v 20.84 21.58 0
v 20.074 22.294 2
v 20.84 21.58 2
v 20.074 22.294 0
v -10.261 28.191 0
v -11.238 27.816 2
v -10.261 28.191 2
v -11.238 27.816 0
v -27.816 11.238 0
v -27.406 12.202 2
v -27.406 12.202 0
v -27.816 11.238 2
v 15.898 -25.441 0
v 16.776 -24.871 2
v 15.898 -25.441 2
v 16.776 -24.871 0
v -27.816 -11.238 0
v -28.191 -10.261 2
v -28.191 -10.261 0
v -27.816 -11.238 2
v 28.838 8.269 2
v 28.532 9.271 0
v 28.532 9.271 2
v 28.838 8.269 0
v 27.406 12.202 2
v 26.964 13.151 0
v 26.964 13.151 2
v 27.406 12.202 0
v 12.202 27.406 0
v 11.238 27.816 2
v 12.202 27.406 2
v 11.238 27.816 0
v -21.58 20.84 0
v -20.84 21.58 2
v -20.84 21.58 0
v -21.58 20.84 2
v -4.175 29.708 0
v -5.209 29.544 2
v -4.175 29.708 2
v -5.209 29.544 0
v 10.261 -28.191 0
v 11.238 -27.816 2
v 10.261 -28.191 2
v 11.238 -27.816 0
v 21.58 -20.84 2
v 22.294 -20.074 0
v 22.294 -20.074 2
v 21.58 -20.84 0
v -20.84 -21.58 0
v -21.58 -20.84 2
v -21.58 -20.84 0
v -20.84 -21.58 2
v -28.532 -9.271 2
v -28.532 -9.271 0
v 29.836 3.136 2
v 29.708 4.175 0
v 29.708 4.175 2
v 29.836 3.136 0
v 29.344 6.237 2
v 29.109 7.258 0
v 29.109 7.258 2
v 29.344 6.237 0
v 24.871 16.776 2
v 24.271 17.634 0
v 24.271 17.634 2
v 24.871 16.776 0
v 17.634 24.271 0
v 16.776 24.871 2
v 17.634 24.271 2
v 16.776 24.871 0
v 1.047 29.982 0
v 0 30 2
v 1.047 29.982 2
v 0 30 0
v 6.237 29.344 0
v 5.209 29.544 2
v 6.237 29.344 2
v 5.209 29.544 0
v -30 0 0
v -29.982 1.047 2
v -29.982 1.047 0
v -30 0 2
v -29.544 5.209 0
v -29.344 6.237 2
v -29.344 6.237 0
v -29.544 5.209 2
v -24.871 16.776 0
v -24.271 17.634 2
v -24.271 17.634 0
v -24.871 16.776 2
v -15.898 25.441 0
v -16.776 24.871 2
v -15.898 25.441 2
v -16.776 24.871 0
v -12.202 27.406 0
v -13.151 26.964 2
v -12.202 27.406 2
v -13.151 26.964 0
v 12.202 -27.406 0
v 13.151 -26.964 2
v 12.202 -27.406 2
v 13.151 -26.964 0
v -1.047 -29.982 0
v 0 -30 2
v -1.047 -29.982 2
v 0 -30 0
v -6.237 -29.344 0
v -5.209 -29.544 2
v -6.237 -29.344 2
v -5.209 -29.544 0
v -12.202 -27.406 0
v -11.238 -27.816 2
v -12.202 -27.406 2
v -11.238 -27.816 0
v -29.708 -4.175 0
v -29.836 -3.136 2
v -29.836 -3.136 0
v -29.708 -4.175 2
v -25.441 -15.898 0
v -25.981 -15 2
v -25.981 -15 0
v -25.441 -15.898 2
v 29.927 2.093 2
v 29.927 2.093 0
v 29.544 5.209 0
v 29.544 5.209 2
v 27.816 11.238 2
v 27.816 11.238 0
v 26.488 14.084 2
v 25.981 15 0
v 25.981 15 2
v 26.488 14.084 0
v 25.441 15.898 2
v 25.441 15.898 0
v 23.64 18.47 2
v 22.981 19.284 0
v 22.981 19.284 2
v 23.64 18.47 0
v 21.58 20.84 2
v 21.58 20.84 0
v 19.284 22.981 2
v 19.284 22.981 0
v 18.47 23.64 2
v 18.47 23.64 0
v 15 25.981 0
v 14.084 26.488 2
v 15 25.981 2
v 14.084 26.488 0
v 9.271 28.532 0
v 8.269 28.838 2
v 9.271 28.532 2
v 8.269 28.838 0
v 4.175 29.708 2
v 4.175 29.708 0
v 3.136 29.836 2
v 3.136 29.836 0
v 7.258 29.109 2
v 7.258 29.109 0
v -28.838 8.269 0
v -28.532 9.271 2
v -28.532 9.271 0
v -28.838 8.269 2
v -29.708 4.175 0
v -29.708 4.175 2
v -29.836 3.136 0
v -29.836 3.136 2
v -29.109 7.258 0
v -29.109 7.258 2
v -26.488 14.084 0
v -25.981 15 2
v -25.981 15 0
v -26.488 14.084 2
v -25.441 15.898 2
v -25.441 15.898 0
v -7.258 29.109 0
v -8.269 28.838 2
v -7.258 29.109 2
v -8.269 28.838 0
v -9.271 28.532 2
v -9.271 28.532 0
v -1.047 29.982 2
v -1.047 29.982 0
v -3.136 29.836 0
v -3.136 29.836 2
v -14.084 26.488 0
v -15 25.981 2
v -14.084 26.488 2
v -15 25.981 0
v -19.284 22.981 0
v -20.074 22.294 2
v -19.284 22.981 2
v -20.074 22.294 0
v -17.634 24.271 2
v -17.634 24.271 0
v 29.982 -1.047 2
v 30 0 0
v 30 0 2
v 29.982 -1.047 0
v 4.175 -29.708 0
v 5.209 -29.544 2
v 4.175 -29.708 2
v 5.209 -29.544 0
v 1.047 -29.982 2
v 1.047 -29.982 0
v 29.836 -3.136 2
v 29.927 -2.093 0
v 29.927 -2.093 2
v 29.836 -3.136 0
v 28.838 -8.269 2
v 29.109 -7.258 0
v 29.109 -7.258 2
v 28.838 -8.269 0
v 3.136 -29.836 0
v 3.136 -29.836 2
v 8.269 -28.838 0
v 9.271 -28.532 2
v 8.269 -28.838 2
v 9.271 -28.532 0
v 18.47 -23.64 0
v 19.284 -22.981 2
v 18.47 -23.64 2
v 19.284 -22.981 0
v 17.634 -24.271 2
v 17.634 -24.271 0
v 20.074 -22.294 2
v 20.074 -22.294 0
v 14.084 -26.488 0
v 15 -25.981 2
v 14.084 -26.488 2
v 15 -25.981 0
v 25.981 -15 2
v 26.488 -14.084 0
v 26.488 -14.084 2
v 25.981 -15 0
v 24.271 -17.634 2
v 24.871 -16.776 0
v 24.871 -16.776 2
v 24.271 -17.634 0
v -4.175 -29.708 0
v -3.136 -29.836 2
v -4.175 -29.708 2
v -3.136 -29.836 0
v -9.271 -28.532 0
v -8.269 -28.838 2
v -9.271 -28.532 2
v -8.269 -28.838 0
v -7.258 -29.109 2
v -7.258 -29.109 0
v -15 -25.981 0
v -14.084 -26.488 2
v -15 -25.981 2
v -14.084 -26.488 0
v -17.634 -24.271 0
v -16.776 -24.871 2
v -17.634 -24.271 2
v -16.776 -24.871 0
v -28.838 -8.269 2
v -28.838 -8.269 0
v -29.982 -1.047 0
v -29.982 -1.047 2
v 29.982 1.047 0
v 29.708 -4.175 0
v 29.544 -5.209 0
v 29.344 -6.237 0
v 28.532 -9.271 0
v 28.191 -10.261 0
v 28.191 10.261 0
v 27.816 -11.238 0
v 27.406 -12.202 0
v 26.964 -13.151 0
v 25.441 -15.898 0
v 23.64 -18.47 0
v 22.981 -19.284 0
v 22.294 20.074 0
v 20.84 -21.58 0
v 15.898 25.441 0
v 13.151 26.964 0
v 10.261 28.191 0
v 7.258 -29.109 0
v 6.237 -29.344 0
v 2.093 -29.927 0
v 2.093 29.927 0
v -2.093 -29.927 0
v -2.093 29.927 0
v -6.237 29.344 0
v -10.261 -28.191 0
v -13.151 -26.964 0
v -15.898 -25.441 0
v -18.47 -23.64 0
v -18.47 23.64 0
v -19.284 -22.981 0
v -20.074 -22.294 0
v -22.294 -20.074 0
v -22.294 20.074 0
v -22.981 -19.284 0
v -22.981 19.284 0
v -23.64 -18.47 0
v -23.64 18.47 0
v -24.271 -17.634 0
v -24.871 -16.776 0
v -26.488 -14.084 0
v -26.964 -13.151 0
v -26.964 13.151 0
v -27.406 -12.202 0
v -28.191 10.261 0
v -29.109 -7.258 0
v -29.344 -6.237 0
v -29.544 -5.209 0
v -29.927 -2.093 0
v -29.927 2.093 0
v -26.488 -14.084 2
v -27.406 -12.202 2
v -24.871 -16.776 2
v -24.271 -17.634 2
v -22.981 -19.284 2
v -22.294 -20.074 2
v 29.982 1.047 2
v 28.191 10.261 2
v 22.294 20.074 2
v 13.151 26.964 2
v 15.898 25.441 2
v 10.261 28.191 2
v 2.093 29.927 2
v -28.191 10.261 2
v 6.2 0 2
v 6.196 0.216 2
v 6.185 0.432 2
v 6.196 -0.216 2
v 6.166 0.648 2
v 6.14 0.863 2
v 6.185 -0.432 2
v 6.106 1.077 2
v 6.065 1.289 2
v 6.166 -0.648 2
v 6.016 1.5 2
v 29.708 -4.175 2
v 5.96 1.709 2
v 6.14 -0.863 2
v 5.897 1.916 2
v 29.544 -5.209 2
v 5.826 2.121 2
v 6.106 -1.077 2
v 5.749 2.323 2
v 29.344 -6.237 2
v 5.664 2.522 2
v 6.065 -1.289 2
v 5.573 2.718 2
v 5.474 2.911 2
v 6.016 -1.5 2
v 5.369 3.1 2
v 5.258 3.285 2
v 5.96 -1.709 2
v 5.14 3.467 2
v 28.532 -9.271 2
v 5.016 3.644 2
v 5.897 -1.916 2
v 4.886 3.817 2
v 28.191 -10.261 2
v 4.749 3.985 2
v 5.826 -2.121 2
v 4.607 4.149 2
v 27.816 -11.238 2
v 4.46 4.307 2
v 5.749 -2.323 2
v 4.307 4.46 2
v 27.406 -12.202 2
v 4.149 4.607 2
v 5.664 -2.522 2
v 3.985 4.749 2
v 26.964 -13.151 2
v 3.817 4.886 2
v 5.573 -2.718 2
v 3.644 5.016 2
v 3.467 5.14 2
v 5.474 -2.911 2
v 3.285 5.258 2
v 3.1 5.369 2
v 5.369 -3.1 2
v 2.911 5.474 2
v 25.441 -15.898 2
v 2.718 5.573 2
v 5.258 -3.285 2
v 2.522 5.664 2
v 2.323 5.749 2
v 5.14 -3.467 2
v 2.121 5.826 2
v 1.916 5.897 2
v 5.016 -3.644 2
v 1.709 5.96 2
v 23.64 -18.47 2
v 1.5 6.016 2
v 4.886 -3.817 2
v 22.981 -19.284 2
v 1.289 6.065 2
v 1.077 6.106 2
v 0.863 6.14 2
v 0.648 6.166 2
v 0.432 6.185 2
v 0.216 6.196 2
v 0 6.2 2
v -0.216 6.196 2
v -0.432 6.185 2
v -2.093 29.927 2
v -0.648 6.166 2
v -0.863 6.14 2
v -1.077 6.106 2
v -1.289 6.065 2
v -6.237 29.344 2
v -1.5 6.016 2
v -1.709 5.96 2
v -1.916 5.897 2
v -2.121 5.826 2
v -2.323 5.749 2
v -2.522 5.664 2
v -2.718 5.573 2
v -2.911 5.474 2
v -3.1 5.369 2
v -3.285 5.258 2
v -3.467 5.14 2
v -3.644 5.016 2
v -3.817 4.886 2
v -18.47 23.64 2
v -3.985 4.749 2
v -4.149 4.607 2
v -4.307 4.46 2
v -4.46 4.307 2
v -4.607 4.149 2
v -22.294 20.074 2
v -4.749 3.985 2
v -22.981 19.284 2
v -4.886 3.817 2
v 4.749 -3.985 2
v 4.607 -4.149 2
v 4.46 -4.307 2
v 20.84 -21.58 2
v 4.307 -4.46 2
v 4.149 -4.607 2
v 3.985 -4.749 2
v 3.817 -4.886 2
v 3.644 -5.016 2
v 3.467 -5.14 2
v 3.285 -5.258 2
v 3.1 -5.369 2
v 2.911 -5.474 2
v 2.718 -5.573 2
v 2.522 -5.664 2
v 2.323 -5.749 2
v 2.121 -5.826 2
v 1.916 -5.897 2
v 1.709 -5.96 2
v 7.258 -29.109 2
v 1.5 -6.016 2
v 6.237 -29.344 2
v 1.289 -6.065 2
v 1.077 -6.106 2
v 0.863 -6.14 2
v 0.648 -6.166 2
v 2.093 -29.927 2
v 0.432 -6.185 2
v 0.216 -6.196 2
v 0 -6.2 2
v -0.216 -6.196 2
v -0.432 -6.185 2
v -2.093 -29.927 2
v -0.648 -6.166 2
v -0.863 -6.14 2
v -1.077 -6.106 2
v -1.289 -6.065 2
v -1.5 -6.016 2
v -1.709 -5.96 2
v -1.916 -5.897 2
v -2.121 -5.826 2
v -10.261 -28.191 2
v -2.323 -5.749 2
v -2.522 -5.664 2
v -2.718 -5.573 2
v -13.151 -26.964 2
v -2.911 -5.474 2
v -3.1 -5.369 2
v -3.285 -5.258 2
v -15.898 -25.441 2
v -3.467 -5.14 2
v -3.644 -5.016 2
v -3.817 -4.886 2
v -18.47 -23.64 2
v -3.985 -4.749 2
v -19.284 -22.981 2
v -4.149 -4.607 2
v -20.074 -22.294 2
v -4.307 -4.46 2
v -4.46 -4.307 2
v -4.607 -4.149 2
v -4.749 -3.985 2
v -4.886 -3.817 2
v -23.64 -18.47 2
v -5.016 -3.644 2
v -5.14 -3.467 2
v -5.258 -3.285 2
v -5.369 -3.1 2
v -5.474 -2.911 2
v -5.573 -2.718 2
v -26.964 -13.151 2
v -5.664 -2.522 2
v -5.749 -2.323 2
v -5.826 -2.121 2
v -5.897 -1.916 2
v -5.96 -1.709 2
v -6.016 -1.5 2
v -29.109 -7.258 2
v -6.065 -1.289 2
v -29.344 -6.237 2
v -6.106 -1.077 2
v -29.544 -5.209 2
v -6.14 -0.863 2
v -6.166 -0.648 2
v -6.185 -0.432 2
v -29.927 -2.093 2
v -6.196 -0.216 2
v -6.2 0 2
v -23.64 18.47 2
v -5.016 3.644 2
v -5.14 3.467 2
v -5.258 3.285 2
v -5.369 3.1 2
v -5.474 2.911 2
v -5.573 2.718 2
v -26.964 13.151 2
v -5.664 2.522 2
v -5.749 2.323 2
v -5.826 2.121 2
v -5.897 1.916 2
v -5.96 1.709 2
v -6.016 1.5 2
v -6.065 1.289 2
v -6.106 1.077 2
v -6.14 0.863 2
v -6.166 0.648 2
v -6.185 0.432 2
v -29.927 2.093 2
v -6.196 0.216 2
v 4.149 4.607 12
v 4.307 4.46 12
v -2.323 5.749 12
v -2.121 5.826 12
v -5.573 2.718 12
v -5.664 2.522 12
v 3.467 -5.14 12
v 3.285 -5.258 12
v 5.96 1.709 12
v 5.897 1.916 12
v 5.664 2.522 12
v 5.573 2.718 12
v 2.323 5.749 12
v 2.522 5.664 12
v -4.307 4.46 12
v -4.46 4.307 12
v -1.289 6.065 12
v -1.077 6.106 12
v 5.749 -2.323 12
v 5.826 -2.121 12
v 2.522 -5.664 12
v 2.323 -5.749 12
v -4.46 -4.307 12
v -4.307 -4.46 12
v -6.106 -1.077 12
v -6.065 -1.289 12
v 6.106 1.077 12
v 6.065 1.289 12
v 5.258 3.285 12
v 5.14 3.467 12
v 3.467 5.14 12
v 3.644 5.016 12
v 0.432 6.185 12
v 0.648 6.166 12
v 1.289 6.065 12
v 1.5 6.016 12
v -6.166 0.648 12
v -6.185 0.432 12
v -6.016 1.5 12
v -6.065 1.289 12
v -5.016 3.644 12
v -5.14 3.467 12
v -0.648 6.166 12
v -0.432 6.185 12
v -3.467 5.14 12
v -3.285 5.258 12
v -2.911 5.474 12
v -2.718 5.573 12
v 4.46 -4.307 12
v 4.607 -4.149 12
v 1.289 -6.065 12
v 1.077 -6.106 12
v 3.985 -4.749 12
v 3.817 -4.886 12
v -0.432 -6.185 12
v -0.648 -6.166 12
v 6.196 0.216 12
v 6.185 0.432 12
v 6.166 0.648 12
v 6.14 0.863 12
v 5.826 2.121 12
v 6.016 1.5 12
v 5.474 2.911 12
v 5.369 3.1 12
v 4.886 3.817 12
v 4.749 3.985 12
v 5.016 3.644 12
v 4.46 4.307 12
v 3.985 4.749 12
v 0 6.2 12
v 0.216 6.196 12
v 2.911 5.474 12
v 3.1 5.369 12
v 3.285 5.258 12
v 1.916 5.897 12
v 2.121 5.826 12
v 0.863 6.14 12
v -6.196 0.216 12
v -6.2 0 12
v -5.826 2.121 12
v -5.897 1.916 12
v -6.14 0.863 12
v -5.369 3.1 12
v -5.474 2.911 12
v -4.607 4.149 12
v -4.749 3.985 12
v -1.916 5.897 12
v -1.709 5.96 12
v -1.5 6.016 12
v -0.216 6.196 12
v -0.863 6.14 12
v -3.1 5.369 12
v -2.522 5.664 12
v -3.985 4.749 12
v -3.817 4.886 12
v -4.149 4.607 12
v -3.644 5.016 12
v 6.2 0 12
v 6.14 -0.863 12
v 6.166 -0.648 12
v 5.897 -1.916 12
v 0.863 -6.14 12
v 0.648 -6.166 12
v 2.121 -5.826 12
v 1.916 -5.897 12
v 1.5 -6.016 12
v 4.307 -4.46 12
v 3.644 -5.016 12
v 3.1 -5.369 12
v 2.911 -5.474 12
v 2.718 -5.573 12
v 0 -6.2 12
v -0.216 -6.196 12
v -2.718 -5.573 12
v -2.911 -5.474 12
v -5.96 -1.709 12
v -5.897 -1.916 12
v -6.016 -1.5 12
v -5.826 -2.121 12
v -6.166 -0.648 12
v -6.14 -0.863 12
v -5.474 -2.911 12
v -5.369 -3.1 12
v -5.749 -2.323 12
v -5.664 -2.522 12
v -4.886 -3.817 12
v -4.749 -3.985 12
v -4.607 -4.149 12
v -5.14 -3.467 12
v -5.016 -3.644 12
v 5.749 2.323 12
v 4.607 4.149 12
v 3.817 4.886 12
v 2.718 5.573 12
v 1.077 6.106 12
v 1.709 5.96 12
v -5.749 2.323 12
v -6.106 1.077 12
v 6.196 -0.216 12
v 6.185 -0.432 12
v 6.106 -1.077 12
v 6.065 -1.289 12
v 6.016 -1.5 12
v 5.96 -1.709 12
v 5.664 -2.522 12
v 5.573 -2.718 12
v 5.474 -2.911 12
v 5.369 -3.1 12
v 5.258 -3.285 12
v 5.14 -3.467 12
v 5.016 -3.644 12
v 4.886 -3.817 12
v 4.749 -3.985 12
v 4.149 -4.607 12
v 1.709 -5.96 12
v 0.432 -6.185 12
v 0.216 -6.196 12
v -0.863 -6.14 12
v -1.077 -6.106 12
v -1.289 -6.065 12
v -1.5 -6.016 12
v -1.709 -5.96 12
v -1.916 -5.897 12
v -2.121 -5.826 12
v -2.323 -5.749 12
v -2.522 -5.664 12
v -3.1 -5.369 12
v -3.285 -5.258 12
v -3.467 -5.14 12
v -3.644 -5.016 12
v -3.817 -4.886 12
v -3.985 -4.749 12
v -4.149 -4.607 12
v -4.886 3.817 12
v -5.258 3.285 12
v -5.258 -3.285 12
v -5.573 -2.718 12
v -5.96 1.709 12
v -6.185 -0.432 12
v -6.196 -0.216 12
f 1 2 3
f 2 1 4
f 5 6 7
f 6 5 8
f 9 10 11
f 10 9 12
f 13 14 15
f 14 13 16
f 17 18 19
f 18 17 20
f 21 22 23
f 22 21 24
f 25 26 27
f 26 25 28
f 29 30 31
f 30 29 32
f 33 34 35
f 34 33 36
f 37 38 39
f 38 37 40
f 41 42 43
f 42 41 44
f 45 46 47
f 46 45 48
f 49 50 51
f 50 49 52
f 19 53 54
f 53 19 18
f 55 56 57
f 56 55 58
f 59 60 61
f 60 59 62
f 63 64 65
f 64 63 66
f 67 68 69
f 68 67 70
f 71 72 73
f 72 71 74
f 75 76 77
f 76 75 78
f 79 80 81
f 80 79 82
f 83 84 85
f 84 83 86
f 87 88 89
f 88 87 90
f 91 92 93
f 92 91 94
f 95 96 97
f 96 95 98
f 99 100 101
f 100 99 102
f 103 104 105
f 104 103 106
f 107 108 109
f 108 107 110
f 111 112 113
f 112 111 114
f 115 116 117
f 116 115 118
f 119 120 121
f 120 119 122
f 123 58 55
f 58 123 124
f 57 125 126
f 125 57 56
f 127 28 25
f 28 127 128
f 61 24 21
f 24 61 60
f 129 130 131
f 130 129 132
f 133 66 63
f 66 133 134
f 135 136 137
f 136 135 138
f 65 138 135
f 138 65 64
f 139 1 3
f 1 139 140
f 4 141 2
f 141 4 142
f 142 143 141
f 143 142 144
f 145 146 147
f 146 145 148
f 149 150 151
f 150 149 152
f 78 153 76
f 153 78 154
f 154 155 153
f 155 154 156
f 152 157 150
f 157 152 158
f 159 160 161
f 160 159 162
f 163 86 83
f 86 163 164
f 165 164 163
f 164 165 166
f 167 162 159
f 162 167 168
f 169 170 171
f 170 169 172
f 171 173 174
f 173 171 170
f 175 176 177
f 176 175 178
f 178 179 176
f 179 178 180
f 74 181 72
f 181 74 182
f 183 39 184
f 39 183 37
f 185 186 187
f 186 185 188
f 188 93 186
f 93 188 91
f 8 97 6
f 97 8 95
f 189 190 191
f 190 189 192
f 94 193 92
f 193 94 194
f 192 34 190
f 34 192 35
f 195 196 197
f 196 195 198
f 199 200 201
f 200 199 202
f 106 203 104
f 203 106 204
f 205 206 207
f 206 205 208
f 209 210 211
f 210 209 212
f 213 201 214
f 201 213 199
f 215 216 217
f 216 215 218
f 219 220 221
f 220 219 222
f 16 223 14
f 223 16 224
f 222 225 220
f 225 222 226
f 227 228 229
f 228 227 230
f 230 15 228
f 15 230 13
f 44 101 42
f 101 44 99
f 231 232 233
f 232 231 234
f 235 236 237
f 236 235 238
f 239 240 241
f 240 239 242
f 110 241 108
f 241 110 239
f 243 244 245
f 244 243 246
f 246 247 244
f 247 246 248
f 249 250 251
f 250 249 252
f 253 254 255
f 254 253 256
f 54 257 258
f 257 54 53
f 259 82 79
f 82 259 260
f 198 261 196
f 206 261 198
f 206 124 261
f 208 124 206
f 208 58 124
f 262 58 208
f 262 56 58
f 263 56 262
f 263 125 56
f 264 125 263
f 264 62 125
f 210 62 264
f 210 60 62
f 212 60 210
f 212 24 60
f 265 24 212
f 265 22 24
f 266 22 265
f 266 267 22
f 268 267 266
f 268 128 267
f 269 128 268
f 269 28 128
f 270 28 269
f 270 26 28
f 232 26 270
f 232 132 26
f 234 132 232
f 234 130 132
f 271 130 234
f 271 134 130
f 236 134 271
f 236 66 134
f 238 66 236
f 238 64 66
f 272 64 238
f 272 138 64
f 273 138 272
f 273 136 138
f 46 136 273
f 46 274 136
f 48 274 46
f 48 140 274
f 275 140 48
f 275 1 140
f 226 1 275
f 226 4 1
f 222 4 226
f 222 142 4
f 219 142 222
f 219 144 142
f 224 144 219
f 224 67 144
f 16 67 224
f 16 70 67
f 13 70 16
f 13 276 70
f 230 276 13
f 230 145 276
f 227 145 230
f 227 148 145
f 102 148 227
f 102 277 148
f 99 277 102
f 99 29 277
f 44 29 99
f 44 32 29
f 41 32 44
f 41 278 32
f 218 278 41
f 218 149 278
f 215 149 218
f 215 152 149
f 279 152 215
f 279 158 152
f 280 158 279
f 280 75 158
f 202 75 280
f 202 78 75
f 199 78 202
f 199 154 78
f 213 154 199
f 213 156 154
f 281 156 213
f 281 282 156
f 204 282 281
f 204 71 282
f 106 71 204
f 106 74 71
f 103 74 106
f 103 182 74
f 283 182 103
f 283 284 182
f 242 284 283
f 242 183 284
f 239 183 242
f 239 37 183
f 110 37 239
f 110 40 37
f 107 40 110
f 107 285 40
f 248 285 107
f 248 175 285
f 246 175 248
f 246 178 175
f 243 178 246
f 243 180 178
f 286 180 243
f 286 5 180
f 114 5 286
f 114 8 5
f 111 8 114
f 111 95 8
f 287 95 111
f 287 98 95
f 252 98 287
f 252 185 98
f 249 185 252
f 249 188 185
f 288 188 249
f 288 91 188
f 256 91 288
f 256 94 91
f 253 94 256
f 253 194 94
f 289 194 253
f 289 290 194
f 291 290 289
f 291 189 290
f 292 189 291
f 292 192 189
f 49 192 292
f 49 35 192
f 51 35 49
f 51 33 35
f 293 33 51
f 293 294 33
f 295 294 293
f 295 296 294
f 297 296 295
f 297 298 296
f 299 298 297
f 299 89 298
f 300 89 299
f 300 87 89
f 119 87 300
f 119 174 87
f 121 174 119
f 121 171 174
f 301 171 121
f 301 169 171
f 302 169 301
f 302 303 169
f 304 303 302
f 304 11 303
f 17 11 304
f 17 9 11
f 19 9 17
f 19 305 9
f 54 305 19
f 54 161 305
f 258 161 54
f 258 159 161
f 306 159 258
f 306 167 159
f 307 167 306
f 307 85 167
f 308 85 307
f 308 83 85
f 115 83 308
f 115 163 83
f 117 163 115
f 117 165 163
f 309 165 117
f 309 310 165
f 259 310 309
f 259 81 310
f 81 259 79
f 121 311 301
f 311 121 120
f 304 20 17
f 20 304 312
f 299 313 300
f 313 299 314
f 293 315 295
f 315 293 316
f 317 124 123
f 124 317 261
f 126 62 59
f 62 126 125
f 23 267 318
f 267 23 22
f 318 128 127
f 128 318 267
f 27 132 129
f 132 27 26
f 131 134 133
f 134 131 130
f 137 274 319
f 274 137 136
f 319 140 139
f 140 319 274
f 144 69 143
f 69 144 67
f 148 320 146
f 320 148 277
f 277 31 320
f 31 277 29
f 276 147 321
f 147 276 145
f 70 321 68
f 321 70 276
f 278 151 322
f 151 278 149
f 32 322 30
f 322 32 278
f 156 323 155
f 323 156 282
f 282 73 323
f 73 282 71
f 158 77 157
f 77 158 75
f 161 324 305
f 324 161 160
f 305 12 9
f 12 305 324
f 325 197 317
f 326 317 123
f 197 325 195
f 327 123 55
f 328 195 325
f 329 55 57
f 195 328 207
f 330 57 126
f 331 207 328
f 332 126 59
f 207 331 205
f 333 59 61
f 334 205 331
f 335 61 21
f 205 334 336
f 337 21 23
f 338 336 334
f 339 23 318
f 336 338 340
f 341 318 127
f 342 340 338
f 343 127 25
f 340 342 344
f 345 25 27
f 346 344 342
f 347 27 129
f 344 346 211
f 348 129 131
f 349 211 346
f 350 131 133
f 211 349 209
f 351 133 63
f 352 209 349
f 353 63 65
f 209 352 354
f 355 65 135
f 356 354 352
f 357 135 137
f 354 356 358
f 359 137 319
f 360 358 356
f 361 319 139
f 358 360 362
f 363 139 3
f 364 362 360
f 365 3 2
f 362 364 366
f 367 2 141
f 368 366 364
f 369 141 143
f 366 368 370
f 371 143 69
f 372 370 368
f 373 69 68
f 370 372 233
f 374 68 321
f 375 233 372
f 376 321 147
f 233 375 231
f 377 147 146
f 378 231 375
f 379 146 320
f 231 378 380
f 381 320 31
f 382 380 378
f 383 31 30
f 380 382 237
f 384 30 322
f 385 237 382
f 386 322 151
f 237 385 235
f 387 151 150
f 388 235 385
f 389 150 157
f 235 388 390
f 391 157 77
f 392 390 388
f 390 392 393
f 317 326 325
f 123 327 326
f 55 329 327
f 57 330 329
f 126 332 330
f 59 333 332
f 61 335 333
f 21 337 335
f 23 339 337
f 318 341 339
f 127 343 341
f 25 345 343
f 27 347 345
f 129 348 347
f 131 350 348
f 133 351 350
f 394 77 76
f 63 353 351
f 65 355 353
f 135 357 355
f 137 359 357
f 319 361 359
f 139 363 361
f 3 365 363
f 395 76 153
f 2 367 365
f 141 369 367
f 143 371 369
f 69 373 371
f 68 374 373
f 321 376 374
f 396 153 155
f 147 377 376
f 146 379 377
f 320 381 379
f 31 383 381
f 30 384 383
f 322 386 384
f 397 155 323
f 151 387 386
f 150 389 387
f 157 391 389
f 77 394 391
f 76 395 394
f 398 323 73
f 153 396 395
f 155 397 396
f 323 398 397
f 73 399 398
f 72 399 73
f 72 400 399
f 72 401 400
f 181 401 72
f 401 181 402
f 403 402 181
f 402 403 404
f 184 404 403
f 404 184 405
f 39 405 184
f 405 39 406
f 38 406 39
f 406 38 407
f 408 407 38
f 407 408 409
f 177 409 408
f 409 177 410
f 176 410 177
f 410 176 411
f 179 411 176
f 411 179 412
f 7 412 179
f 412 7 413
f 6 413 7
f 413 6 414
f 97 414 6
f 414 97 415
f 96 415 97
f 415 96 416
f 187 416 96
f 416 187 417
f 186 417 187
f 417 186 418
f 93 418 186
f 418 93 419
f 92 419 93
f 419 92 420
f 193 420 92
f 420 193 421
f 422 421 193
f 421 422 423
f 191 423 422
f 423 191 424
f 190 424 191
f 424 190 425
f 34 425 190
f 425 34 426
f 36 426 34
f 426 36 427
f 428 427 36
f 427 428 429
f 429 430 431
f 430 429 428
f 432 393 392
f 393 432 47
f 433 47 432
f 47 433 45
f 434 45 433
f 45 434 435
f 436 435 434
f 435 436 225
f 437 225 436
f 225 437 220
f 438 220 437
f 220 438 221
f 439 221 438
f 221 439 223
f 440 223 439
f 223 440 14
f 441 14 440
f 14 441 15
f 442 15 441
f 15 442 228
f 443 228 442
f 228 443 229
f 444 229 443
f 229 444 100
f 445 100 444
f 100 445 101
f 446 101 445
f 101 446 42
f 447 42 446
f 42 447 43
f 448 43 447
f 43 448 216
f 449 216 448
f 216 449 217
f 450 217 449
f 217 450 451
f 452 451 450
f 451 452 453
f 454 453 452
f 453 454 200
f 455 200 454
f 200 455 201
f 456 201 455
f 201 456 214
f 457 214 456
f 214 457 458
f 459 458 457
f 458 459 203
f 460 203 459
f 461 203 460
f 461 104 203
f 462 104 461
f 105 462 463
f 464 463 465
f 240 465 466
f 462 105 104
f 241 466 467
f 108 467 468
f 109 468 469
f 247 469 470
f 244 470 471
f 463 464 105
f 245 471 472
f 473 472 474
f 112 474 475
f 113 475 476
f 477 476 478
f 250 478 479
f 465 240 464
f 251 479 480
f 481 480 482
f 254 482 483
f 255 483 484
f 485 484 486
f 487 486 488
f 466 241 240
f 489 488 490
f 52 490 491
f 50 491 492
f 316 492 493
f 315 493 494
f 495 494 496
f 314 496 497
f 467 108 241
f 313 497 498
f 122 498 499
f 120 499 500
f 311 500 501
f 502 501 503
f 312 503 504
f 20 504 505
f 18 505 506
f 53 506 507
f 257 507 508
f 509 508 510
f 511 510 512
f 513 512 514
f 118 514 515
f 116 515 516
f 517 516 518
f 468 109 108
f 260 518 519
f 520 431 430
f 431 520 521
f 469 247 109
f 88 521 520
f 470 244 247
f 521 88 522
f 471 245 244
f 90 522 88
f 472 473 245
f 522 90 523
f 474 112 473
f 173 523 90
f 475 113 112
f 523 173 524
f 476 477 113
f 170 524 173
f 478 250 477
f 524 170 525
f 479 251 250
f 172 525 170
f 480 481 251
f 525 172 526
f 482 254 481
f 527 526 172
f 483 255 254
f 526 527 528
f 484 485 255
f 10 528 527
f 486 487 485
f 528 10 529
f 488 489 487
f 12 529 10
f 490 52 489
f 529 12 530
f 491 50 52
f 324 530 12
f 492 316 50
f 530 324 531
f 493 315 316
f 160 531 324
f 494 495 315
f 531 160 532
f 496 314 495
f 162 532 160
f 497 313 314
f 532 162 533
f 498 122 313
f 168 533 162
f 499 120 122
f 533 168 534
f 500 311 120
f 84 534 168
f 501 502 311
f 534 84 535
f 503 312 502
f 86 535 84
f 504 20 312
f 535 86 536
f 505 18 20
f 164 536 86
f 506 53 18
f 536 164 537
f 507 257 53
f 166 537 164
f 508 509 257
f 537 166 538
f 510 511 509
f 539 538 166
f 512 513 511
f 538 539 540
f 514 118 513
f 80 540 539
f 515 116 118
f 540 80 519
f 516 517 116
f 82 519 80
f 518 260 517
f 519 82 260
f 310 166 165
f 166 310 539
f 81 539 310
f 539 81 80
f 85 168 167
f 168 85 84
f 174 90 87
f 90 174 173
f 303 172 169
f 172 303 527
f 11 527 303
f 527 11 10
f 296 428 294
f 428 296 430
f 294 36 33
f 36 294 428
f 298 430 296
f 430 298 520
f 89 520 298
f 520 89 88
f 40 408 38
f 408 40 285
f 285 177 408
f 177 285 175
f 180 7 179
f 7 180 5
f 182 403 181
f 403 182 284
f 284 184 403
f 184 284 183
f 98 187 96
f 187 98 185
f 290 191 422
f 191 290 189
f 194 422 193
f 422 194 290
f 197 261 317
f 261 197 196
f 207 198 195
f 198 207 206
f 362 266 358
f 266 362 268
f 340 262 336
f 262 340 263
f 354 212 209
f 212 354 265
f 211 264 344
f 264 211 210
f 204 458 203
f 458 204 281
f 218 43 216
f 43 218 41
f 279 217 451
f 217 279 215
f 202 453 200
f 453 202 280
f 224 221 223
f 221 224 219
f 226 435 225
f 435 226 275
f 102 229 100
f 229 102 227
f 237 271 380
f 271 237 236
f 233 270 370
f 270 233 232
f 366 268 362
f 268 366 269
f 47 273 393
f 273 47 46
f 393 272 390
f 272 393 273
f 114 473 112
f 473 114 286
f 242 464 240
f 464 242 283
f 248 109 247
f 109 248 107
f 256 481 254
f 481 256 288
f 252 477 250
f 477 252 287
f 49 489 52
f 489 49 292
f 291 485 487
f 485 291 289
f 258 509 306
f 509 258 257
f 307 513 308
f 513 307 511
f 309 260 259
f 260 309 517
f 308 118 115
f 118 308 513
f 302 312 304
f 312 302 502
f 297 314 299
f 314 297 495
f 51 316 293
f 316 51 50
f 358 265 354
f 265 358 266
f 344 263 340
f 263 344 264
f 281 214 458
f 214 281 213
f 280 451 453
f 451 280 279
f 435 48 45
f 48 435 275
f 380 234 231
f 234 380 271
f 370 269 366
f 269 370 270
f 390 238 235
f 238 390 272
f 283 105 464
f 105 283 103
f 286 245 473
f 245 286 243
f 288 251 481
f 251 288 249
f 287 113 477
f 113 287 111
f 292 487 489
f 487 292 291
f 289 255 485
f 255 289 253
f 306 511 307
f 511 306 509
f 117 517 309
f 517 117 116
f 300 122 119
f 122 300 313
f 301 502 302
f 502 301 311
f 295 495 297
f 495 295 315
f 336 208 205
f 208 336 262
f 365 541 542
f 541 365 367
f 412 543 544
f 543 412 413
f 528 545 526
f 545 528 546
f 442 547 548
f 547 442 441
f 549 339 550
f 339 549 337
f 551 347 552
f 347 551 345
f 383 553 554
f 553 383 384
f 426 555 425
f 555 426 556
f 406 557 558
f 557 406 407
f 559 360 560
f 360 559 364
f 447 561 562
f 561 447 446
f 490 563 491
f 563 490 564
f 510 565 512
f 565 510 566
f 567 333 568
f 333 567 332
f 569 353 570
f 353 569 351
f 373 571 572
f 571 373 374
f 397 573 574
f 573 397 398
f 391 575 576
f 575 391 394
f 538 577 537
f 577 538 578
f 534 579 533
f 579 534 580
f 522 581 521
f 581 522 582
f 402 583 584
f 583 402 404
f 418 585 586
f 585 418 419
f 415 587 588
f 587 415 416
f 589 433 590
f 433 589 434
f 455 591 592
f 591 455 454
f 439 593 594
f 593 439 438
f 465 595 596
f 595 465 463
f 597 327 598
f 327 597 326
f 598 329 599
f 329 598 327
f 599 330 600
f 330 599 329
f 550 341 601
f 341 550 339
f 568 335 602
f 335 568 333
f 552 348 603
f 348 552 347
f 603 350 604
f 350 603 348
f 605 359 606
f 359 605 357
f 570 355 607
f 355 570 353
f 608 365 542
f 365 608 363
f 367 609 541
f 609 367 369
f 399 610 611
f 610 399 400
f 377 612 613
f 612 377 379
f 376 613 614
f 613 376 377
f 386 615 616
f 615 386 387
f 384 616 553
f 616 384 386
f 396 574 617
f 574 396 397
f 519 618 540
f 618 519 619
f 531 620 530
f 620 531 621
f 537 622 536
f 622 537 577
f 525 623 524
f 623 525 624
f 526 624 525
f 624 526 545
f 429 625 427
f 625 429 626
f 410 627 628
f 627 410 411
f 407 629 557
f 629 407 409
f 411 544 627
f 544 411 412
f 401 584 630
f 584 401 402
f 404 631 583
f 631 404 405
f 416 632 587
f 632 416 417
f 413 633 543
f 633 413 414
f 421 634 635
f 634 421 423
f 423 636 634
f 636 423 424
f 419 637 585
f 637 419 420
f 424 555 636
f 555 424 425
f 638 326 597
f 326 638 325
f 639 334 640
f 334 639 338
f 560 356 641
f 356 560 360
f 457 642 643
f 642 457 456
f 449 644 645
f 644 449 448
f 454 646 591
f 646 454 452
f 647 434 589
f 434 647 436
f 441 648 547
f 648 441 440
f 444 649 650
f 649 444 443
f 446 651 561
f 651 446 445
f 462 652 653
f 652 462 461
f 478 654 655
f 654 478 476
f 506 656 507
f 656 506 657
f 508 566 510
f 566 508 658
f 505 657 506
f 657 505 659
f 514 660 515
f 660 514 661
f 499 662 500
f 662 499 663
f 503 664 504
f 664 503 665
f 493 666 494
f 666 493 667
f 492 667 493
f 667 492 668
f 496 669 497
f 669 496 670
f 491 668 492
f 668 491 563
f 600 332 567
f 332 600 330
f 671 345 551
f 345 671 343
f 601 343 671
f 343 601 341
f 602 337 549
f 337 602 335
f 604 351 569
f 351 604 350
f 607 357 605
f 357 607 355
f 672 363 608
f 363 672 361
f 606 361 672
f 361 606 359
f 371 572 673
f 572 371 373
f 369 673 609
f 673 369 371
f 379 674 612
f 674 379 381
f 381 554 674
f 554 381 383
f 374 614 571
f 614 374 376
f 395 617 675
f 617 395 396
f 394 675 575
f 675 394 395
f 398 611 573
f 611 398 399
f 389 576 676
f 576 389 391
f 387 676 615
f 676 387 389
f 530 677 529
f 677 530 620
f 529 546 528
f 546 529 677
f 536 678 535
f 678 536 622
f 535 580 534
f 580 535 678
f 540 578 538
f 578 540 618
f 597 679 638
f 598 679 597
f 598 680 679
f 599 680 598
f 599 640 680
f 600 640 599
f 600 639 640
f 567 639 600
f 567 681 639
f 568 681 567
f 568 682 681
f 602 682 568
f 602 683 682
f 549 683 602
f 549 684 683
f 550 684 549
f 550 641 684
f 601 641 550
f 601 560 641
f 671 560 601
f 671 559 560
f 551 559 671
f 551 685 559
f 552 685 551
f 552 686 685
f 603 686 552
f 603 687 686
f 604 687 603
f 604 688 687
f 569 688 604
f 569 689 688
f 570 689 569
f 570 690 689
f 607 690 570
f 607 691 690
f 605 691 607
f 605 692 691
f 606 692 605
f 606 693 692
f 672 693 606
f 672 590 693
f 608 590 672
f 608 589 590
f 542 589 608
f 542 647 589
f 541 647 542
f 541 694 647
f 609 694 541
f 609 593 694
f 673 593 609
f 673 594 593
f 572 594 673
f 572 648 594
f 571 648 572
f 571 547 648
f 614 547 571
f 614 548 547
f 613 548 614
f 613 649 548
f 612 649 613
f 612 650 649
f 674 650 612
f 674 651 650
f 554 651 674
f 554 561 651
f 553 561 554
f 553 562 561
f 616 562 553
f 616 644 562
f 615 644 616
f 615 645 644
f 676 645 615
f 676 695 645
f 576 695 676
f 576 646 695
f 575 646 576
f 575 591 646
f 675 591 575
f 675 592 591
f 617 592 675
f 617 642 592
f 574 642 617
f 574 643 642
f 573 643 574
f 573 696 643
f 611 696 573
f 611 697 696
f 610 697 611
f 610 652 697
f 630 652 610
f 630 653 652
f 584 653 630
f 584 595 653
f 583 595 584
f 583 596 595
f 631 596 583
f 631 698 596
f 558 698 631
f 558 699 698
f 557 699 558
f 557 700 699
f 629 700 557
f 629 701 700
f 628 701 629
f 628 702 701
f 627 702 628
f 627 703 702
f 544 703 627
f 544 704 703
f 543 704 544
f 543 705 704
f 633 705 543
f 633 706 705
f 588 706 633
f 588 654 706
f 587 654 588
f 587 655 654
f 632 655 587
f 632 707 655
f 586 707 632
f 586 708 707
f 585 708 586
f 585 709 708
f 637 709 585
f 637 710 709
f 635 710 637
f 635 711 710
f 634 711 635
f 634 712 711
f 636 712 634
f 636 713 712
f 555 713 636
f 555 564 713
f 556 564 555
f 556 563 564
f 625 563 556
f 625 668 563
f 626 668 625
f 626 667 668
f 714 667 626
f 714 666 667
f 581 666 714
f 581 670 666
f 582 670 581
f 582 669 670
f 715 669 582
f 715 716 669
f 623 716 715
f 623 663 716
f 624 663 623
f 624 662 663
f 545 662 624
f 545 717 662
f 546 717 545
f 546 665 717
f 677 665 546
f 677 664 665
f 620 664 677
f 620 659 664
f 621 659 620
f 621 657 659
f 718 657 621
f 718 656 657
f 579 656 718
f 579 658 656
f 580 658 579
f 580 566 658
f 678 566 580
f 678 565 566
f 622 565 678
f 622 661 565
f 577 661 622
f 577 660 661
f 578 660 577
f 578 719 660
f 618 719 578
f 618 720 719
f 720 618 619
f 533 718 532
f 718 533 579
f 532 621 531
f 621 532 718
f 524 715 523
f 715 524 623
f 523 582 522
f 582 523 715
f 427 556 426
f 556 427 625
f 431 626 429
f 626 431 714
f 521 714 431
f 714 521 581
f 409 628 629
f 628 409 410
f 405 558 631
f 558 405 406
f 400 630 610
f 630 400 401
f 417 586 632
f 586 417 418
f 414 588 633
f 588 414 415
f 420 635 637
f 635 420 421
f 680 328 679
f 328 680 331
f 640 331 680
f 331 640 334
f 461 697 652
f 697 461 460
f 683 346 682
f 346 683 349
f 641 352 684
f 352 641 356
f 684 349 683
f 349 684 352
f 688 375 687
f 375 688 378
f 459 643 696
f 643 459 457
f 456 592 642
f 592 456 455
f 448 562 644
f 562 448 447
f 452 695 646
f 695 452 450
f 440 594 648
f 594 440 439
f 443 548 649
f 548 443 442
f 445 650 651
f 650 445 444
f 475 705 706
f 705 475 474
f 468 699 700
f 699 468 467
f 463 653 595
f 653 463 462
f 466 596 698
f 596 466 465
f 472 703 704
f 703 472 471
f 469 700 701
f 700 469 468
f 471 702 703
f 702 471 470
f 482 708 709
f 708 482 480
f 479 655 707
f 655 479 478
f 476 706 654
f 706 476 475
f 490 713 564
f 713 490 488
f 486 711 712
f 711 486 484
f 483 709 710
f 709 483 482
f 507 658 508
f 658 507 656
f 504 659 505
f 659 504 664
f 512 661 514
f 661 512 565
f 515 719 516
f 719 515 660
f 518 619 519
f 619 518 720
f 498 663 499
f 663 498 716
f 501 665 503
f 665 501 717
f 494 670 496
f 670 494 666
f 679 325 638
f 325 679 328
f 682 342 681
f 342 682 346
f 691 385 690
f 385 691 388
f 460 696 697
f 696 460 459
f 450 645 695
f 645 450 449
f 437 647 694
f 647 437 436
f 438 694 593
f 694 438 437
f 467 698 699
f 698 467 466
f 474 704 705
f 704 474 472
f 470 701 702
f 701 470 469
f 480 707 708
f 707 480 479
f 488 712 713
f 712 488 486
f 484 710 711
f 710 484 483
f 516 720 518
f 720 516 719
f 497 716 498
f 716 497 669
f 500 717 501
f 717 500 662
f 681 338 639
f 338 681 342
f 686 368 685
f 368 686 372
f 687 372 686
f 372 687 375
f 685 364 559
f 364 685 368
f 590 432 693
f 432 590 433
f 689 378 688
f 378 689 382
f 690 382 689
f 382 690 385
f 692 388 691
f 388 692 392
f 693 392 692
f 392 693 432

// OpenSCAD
//
//  Fits 1/2 CVPC pipe
//

$fn = 180;

pipe_inner_dia  = 12.4;
pipe_height     = 10.0;
guide_dia       = 60.0;
guide_thickness =  2.0;

union () {
  cylinder (d = guide_dia, h = guide_thickness);
  cylinder (d = pipe_inner_dia, h = pipe_height + guide_thickness);
}
